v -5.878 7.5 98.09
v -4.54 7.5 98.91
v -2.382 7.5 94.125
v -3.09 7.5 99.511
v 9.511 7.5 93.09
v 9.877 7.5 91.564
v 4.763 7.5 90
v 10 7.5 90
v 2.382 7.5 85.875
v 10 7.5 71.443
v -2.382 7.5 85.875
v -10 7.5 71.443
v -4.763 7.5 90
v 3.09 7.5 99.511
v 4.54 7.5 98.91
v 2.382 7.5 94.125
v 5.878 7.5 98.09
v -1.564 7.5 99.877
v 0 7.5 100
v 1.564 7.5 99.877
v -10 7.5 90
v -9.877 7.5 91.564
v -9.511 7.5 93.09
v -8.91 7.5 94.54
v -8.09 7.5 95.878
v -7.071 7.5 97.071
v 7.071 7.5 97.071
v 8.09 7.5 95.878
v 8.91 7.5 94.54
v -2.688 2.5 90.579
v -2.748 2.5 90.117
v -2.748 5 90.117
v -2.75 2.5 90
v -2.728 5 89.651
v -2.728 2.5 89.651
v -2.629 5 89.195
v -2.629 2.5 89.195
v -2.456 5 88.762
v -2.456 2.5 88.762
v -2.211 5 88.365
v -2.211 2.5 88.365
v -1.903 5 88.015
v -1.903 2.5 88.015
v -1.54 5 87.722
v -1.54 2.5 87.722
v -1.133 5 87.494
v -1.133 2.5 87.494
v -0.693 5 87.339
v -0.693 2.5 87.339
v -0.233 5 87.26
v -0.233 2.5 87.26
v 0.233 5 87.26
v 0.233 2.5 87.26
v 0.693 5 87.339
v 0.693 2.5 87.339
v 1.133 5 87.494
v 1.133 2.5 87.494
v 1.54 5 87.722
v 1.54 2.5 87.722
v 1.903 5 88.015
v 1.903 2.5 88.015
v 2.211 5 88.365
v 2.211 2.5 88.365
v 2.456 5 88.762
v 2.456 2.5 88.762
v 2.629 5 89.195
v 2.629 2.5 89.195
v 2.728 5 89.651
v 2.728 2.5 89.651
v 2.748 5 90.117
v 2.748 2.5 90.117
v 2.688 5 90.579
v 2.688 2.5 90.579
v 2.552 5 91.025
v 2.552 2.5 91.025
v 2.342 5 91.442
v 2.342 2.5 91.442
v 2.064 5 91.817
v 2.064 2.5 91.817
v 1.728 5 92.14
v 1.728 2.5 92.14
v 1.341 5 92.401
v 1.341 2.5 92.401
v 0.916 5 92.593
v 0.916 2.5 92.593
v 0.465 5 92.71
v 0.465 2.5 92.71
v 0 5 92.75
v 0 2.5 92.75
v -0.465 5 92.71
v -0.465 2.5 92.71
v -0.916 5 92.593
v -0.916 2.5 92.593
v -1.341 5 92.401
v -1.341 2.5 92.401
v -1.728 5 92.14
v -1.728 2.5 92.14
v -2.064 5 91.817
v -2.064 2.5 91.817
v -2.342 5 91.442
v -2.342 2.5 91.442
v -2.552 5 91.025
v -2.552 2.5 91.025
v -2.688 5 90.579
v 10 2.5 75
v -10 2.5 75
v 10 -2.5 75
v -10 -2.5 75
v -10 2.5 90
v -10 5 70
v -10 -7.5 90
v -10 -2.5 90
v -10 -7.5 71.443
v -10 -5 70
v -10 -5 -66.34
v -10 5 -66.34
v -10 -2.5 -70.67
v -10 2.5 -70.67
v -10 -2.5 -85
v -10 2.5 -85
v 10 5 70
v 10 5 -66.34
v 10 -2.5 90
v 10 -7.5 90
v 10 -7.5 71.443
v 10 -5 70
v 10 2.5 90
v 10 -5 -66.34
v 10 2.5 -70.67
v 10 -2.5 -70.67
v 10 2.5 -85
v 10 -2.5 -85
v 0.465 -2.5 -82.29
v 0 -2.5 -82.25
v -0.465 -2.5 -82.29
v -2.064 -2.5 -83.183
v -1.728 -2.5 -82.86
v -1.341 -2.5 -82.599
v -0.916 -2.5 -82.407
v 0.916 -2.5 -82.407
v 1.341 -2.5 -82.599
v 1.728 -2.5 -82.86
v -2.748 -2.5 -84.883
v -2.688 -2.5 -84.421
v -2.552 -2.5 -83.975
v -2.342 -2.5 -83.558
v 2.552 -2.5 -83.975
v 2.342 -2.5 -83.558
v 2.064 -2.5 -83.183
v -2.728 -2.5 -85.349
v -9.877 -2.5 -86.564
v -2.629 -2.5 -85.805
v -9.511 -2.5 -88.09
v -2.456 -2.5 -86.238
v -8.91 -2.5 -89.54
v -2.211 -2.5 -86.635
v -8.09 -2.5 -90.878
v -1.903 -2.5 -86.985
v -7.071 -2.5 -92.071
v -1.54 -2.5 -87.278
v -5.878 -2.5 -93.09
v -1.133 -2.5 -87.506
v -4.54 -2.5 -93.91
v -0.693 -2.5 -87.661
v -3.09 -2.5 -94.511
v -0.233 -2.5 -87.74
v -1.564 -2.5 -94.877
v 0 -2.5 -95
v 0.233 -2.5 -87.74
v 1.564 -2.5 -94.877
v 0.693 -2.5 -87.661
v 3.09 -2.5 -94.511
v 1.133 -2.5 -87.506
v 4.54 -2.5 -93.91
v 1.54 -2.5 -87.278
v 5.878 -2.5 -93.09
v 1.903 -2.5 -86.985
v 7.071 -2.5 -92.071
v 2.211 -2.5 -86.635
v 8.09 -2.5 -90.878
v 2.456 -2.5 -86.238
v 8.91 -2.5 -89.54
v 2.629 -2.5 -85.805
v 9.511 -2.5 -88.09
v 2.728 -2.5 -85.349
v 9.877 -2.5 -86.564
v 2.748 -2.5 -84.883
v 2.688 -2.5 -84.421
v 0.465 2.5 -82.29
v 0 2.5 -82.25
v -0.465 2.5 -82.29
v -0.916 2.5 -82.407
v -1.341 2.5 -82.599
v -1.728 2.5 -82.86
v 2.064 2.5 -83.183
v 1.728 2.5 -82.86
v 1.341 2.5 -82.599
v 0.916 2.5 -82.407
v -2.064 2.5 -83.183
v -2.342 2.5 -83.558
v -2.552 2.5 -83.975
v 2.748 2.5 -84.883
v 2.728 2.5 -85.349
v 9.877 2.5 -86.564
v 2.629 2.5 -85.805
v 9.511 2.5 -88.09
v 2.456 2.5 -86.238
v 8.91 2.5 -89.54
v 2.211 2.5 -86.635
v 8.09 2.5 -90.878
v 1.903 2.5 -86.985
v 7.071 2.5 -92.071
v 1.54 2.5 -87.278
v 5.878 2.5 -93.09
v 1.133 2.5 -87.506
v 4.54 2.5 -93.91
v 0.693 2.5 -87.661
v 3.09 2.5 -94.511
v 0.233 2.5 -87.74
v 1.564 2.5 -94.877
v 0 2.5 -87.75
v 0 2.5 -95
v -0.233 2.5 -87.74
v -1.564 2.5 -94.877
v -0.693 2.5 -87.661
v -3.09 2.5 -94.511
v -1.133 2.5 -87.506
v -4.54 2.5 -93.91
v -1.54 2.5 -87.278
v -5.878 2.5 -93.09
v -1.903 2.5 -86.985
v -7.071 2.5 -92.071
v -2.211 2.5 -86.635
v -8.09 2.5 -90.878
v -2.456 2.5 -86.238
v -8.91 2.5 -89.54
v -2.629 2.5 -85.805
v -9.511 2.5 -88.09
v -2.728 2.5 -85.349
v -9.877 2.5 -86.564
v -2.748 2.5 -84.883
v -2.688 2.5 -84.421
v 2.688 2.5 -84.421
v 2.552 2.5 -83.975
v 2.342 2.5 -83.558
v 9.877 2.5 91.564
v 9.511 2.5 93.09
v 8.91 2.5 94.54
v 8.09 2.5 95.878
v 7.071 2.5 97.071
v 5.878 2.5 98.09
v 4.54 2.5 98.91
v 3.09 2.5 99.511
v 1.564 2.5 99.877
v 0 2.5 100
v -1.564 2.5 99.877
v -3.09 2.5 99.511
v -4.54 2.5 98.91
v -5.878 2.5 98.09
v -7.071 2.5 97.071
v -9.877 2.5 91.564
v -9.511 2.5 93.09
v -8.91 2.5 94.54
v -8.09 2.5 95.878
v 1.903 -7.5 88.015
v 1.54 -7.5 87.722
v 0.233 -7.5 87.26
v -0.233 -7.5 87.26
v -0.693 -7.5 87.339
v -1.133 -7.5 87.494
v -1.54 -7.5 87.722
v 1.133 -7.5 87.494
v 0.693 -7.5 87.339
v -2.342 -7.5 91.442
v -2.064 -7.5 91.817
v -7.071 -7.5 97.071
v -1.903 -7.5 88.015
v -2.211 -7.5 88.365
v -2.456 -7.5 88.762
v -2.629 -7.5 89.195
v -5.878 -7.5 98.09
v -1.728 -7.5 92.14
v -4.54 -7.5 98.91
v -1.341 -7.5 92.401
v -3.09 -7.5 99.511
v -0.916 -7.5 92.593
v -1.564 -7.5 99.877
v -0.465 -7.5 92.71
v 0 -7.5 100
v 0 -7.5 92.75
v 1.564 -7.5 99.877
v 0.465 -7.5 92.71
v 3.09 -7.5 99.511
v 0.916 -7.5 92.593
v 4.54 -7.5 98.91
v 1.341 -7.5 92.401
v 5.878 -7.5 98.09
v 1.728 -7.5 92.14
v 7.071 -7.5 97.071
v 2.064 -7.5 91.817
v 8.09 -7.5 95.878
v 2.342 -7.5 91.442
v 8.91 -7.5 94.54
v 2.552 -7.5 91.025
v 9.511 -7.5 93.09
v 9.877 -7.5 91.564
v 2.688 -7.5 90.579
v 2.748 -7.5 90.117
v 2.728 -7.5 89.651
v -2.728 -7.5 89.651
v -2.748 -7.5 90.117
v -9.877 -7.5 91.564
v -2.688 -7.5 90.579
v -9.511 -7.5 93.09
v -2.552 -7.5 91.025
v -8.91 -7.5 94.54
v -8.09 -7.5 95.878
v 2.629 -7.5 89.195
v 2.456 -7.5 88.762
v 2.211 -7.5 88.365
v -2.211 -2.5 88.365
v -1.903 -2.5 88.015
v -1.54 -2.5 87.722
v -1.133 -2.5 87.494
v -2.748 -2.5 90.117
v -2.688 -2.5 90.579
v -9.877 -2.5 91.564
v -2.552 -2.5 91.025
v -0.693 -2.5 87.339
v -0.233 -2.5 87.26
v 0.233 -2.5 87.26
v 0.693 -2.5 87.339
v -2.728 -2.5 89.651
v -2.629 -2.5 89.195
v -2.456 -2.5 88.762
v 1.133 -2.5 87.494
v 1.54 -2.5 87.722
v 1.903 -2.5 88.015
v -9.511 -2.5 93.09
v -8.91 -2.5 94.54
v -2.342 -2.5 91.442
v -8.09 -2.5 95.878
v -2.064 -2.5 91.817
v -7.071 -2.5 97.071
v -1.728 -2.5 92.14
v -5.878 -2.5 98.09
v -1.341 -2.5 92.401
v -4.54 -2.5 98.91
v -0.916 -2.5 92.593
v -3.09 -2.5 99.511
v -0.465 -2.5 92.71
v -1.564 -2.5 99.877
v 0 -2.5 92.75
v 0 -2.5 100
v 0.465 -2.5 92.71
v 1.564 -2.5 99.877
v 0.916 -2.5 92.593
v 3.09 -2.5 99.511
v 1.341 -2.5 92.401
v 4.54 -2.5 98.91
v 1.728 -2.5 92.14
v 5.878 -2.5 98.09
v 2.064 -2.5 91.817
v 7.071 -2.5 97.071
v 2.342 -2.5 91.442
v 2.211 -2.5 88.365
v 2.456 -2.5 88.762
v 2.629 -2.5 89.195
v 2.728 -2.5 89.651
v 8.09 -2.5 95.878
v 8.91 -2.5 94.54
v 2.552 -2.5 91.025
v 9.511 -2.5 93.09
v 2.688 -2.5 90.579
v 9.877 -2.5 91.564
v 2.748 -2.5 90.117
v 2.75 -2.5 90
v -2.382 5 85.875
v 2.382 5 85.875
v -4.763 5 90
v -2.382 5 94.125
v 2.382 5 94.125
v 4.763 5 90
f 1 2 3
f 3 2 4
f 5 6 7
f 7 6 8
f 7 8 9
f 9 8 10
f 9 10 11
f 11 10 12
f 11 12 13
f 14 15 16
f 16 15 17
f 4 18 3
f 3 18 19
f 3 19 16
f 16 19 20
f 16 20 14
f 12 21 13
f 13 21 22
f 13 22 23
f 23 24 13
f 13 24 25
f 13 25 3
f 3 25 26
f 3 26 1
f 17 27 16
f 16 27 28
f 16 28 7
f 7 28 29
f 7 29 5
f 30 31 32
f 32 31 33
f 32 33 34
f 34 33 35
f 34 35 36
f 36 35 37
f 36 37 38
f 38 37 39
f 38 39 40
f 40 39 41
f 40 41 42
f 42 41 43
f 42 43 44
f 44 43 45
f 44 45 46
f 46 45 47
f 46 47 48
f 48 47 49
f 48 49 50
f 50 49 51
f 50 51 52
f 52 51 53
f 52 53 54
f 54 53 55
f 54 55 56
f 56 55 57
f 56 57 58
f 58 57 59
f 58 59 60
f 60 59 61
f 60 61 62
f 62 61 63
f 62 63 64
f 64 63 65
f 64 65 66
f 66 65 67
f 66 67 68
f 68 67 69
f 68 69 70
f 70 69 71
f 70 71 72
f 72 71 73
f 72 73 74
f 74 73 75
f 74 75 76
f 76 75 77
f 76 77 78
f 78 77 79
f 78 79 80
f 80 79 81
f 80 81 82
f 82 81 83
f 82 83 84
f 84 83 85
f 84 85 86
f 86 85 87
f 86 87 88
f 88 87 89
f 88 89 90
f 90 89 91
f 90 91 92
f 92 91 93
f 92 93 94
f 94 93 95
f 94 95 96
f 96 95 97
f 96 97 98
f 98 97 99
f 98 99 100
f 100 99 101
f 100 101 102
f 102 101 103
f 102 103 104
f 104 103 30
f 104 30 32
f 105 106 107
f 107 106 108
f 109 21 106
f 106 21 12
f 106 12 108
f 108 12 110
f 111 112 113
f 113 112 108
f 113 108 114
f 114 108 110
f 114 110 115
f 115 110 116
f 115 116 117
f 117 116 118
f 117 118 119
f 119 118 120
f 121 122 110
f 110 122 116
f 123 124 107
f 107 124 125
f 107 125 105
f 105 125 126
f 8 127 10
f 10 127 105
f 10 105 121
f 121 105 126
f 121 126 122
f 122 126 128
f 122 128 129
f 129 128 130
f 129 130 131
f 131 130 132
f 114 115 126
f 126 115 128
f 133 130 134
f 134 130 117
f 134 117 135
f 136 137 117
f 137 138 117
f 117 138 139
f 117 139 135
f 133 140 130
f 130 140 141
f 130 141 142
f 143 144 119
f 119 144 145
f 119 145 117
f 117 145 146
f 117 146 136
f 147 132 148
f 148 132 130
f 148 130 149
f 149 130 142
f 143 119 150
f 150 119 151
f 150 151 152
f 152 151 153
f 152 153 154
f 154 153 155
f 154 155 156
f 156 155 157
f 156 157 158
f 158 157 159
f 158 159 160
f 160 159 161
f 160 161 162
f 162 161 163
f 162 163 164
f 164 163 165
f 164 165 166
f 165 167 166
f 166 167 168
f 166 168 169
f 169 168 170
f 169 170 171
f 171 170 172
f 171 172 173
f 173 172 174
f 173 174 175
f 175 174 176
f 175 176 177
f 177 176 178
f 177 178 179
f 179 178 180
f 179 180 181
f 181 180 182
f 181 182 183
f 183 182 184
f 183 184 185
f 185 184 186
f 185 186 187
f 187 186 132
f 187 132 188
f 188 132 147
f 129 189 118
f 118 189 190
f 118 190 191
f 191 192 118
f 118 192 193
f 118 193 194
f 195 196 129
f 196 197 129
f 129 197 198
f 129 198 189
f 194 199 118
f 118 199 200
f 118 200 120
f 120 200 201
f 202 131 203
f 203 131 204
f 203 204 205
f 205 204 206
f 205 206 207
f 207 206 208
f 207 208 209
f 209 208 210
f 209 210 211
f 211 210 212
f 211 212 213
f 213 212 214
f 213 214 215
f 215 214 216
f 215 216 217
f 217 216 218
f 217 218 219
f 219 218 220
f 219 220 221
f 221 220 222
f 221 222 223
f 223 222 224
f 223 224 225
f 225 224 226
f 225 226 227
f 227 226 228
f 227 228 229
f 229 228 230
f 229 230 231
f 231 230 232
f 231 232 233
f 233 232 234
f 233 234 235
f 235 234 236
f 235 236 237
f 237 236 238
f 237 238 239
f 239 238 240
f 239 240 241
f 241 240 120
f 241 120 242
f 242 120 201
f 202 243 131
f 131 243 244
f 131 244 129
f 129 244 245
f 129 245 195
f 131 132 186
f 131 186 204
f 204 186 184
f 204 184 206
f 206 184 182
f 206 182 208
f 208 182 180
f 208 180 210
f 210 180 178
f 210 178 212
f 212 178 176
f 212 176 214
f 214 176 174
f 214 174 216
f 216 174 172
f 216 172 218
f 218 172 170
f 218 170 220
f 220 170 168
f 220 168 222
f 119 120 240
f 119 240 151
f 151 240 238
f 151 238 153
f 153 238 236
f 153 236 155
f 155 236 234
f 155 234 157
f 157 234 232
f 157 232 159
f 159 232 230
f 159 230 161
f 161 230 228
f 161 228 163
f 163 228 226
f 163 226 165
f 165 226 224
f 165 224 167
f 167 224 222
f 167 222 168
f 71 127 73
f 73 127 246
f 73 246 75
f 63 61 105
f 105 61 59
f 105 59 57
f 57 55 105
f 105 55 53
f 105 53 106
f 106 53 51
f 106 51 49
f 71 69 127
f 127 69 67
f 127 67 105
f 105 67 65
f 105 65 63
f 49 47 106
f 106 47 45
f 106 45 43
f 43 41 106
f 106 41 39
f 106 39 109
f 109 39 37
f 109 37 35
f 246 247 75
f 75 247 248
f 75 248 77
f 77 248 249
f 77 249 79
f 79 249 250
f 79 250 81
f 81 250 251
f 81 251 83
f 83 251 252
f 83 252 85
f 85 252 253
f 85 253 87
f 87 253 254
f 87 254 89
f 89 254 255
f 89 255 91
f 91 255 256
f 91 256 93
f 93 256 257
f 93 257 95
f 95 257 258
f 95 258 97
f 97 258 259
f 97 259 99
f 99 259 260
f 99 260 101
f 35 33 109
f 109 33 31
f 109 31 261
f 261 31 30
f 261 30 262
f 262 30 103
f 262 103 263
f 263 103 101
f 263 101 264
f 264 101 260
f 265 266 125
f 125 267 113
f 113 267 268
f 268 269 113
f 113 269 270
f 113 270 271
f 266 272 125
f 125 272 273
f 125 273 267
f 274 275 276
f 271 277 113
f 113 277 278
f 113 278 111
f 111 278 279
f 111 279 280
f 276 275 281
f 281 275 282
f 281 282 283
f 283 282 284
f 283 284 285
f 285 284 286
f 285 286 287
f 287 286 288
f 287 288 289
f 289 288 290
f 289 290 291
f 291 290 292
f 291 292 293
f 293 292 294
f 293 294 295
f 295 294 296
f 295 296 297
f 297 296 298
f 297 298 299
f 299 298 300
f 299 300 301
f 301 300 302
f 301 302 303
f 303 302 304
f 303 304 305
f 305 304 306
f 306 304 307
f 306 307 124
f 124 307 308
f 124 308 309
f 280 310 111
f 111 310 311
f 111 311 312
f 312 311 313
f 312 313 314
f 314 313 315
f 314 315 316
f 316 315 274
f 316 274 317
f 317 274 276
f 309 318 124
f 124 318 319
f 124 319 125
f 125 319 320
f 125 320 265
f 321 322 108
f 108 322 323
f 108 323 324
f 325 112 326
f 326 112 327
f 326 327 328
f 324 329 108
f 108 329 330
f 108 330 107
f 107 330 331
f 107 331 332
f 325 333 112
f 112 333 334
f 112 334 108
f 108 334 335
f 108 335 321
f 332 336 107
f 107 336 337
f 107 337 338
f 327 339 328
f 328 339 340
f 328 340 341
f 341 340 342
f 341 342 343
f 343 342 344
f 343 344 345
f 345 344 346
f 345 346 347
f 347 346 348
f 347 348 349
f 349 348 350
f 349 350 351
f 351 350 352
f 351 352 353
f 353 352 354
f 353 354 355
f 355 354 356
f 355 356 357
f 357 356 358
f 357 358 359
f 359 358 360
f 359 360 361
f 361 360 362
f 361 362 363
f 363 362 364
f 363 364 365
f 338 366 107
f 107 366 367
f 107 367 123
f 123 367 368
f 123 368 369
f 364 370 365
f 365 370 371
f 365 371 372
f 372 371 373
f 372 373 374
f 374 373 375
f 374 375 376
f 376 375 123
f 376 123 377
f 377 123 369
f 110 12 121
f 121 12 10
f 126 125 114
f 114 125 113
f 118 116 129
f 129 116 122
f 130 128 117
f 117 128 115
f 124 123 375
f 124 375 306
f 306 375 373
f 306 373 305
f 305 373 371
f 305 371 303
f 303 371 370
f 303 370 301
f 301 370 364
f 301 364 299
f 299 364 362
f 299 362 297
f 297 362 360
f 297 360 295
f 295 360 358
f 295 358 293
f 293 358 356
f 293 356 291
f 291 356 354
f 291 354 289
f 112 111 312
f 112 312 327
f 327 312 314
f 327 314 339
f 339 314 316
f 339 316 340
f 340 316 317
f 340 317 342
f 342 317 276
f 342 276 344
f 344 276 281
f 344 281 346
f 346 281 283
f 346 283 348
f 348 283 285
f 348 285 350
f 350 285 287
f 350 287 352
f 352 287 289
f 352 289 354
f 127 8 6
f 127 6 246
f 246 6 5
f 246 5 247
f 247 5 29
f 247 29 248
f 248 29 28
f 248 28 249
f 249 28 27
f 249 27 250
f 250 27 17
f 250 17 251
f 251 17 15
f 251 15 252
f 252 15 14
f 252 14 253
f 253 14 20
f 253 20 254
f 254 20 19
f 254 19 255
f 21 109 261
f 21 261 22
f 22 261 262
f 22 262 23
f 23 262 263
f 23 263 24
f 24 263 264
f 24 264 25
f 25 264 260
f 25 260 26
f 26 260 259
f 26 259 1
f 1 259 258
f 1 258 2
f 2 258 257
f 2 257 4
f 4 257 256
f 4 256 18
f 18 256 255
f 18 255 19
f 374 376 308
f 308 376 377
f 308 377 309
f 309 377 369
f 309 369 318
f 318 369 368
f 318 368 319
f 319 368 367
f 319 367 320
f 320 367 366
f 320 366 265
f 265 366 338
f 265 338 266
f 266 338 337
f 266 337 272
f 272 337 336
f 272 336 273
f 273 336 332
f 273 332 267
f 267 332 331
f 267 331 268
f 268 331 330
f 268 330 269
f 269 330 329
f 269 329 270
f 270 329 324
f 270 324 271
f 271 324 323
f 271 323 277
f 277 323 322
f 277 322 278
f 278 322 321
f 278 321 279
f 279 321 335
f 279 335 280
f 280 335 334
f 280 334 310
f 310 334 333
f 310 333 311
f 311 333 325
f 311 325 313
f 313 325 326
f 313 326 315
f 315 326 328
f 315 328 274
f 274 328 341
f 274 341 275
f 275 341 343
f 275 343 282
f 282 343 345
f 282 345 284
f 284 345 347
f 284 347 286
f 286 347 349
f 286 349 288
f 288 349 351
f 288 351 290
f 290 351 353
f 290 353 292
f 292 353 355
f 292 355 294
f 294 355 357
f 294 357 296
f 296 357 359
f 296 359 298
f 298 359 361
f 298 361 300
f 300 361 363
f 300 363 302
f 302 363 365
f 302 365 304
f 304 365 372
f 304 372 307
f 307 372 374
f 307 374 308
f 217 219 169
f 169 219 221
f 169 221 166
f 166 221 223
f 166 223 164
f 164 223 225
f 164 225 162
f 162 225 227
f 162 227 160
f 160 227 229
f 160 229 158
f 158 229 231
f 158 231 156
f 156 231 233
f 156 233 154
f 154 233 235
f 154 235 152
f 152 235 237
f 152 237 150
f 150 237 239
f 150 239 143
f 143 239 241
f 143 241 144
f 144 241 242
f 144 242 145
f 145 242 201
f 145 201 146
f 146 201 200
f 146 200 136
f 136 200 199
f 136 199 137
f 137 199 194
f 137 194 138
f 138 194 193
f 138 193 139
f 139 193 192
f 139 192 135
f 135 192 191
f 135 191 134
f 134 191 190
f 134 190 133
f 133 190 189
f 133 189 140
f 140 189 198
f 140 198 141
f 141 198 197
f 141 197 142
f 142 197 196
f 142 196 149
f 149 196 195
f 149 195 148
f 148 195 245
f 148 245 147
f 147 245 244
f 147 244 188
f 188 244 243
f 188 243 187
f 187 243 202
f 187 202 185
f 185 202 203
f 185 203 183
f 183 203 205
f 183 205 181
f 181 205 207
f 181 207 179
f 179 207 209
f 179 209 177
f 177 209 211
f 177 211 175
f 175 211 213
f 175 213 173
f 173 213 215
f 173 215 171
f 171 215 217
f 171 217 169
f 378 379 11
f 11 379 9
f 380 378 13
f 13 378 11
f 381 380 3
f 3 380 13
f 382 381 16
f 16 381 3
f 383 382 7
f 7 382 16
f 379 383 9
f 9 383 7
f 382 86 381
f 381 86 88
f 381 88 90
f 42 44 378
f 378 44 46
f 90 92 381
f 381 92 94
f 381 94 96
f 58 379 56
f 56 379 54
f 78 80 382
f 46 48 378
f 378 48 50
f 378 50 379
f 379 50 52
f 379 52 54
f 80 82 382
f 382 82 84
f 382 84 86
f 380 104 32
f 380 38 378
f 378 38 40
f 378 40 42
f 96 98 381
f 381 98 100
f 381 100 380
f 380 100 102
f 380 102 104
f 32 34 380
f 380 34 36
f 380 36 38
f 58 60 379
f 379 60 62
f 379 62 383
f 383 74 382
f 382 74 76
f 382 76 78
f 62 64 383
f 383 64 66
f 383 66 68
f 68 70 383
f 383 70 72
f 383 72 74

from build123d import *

# Parameters (mm, degrees)
BOSS_EXTRUDE1_DEPTH      = 75
BOSS_EXTRUDE1_DEPTH_BACK = 75
SKETCH1_W                = 20
SKETCH1_H                = 10
SKETCH3_W                = 20
SKETCH3_H                = 5
BOSS_EXTRUDE2_DEPTH      = 20
FILLET1_R                = 10
SKETCH5_W                = 20
SKETCH5_H                = 5
BOSS_EXTRUDE3_DEPTH      = 25
CHAMFER1_SIZE            = 5
CHAMFER1_SIZE_2          = 8.660254038
FILLET2_R                = 10
CUT_EXTRUDE1_DEPTH       = 101.995049384
CUT_EXTRUDE1_DEPTH_BACK  = 101.995049384
SKETCH4_R                = 2.75
CUT_EXTRUDE2_DEPTH       = 102.612007165
CUT_EXTRUDE2_DEPTH_BACK  = 2.5


# Some blends are built 0.0001 mm under size
with BuildPart() as part:
    # Sketch1 → Boss-Extrude1 (new, two sides: drawn at the far end of the back side and taken through both)
    with BuildSketch(Plane.XY.offset(-BOSS_EXTRUDE1_DEPTH_BACK)):
        Rectangle(SKETCH1_W, SKETCH1_H)
    extrude(amount=BOSS_EXTRUDE1_DEPTH + BOSS_EXTRUDE1_DEPTH_BACK)

    # Sketch3 → Boss-Extrude2 (add)
    with BuildSketch(Plane(origin=(0, 0, -75), x_dir=(-1, 0, 0), z_dir=(0, 0, -1))):
        Rectangle(SKETCH3_W, SKETCH3_H)
    extrude(amount=BOSS_EXTRUDE2_DEPTH)

    # Fillet1
    fillet1_edges = [part.edges().sort_by_distance(p)[0] for p in [
        (-10, 0, -95),
        (10, 0, -95),
    ]]
    fillet(fillet1_edges, radius=FILLET1_R - 0.0001)  # a hair under: the kernel refuses the full size

    # Sketch5 → Boss-Extrude3 (add)
    with BuildSketch(Plane.XY.offset(75)):
        with Locations((0, 5)):
            Rectangle(SKETCH5_W, SKETCH5_H)
        with Locations((0, -5)):
            Rectangle(SKETCH5_W, SKETCH5_H)
    extrude(amount=BOSS_EXTRUDE3_DEPTH)

    # Chamfer1
    # the kernel refuses this chamfer: 8.660254038, 5 mm, written as the material it adds along each edge
    with BuildSketch(Plane(origin=(10, 5, 75), x_dir=(0, -0.05789386240267149, -0.9983227437537926), z_dir=(-1, 0, 0))) as chamfer1_piece_1_section:
        Polygon((CHAMFER1_SIZE * 0.998322743754, -CHAMFER1_SIZE * 0.0578938624027), (-CHAMFER1_SIZE_2 * 0.0578938624016, -CHAMFER1_SIZE_2 * 0.998322743736), (0, 0), align=None)
    chamfer1_piece_1 = extrude(amount=20, mode=Mode.PRIVATE)
    chamfer1_piece_1 = split(chamfer1_piece_1, bisect_by=Plane(origin=(0, 7.5, 72.827003025), z_dir=(0, -1, 0)), keep=Keep.TOP, mode=Mode.PRIVATE)
    add(chamfer1_piece_1)
    with BuildSketch(Plane(origin=(-10, -5, 75), x_dir=(0, 0.05789386240267149, -0.9983227437537926), z_dir=(1, 0, 0))) as chamfer1_piece_2_section:
        Polygon((CHAMFER1_SIZE * 0.998322743754, -CHAMFER1_SIZE * 0.0578938624027), (-CHAMFER1_SIZE_2 * 0.0578938624016, -CHAMFER1_SIZE_2 * 0.998322743736), (0, 0), align=None)
    chamfer1_piece_2 = extrude(amount=20, mode=Mode.PRIVATE)
    chamfer1_piece_2 = split(chamfer1_piece_2, bisect_by=Plane(origin=(0, -7.5, 72.827003025), z_dir=(0, 1, 0)), keep=Keep.TOP, mode=Mode.PRIVATE)
    add(chamfer1_piece_2)
    # the kernel refuses this chamfer: 8.660254038, 5 mm, written as the material it takes off along each edge
    with BuildSketch(Plane(origin=(32.404819853, 5, -75), x_dir=(0, 0.019326765612700594, 0.999813220622208), z_dir=(-1, 0, 0))) as chamfer1_2_piece_1_section:
        Polygon((CHAMFER1_SIZE_2 * 0.999813220604, -CHAMFER1_SIZE_2 * 0.0193267656124), (-CHAMFER1_SIZE * 0.0193267656127, -CHAMFER1_SIZE * 0.999813220622), (0, 0), align=None)
    chamfer1_2_piece_1 = extrude(amount=64.809639706, mode=Mode.PRIVATE)
    chamfer1_2_piece_1 = split(chamfer1_2_piece_1, bisect_by=Plane(origin=(0, 2.5, -71.539331058), z_dir=(0, 1, 0)), keep=Keep.TOP, mode=Mode.PRIVATE)
    add(chamfer1_2_piece_1, mode=Mode.SUBTRACT)
    with BuildSketch(Plane(origin=(-32.404819853, -5, -75), x_dir=(0, 0.9983227437537926, -0.05789386240267045), z_dir=(1, 0, 0))) as chamfer1_2_piece_2_section:
        Polygon((CHAMFER1_SIZE * 0.998322743754, CHAMFER1_SIZE * 0.0578938624027), (-CHAMFER1_SIZE_2 * 0.0578938624016, CHAMFER1_SIZE_2 * 0.998322743736), (0, 0), align=None)
    chamfer1_2_piece_2 = extrude(amount=64.809639706, mode=Mode.PRIVATE)
    chamfer1_2_piece_2 = split(chamfer1_2_piece_2, bisect_by=Plane(origin=(0, -2.5, -71.539331058), z_dir=(0, -1, 0)), keep=Keep.TOP, mode=Mode.PRIVATE)
    add(chamfer1_2_piece_2, mode=Mode.SUBTRACT)

    # Fillet2
    fillet2_edges = [part.edges().sort_by_distance(p)[0] for p in [
        (-10, -5, 100),
        (-10, 5, 100),
        (10, -5, 100),
        (10, 5, 100),
    ]]
    fillet(fillet2_edges, radius=FILLET2_R - 0.0001)  # a hair under: the kernel refuses the full size

    # Sketch4 → Cut-Extrude1 (cut, two sides: drawn at the far end of the back side and taken through both)
    with BuildSketch(Plane(origin=(0, 2.5, 0), x_dir=(1, 0, 0), z_dir=(0, 1, 0)).offset(-CUT_EXTRUDE1_DEPTH_BACK)):
        with Locations(Location((0, 85, 0), (0, 0, 270))):
            Circle(SKETCH4_R)
        with Locations(Location((0, -90, 0), (0, 0, 270))):
            Circle(SKETCH4_R)
    extrude(amount=CUT_EXTRUDE1_DEPTH + CUT_EXTRUDE1_DEPTH_BACK, mode=Mode.SUBTRACT)

    # Sketch6 → Cut-Extrude2 (cut, two sides: drawn at the far end of the back side and taken through both)
    with BuildSketch(Plane(origin=(0, 7.5, 0), x_dir=(1, 0, 0), z_dir=(0, 1, 0)).offset(-CUT_EXTRUDE2_DEPTH_BACK)):
        Polygon((-2.38156986, -85.875), (-4.763139721, -90), (-2.38156986, -94.125), (2.38156986, -94.125), (4.763139721, -90), (2.38156986, -85.875), align=None)
    extrude(amount=CUT_EXTRUDE2_DEPTH + CUT_EXTRUDE2_DEPTH_BACK, mode=Mode.SUBTRACT)


solid = part.part
